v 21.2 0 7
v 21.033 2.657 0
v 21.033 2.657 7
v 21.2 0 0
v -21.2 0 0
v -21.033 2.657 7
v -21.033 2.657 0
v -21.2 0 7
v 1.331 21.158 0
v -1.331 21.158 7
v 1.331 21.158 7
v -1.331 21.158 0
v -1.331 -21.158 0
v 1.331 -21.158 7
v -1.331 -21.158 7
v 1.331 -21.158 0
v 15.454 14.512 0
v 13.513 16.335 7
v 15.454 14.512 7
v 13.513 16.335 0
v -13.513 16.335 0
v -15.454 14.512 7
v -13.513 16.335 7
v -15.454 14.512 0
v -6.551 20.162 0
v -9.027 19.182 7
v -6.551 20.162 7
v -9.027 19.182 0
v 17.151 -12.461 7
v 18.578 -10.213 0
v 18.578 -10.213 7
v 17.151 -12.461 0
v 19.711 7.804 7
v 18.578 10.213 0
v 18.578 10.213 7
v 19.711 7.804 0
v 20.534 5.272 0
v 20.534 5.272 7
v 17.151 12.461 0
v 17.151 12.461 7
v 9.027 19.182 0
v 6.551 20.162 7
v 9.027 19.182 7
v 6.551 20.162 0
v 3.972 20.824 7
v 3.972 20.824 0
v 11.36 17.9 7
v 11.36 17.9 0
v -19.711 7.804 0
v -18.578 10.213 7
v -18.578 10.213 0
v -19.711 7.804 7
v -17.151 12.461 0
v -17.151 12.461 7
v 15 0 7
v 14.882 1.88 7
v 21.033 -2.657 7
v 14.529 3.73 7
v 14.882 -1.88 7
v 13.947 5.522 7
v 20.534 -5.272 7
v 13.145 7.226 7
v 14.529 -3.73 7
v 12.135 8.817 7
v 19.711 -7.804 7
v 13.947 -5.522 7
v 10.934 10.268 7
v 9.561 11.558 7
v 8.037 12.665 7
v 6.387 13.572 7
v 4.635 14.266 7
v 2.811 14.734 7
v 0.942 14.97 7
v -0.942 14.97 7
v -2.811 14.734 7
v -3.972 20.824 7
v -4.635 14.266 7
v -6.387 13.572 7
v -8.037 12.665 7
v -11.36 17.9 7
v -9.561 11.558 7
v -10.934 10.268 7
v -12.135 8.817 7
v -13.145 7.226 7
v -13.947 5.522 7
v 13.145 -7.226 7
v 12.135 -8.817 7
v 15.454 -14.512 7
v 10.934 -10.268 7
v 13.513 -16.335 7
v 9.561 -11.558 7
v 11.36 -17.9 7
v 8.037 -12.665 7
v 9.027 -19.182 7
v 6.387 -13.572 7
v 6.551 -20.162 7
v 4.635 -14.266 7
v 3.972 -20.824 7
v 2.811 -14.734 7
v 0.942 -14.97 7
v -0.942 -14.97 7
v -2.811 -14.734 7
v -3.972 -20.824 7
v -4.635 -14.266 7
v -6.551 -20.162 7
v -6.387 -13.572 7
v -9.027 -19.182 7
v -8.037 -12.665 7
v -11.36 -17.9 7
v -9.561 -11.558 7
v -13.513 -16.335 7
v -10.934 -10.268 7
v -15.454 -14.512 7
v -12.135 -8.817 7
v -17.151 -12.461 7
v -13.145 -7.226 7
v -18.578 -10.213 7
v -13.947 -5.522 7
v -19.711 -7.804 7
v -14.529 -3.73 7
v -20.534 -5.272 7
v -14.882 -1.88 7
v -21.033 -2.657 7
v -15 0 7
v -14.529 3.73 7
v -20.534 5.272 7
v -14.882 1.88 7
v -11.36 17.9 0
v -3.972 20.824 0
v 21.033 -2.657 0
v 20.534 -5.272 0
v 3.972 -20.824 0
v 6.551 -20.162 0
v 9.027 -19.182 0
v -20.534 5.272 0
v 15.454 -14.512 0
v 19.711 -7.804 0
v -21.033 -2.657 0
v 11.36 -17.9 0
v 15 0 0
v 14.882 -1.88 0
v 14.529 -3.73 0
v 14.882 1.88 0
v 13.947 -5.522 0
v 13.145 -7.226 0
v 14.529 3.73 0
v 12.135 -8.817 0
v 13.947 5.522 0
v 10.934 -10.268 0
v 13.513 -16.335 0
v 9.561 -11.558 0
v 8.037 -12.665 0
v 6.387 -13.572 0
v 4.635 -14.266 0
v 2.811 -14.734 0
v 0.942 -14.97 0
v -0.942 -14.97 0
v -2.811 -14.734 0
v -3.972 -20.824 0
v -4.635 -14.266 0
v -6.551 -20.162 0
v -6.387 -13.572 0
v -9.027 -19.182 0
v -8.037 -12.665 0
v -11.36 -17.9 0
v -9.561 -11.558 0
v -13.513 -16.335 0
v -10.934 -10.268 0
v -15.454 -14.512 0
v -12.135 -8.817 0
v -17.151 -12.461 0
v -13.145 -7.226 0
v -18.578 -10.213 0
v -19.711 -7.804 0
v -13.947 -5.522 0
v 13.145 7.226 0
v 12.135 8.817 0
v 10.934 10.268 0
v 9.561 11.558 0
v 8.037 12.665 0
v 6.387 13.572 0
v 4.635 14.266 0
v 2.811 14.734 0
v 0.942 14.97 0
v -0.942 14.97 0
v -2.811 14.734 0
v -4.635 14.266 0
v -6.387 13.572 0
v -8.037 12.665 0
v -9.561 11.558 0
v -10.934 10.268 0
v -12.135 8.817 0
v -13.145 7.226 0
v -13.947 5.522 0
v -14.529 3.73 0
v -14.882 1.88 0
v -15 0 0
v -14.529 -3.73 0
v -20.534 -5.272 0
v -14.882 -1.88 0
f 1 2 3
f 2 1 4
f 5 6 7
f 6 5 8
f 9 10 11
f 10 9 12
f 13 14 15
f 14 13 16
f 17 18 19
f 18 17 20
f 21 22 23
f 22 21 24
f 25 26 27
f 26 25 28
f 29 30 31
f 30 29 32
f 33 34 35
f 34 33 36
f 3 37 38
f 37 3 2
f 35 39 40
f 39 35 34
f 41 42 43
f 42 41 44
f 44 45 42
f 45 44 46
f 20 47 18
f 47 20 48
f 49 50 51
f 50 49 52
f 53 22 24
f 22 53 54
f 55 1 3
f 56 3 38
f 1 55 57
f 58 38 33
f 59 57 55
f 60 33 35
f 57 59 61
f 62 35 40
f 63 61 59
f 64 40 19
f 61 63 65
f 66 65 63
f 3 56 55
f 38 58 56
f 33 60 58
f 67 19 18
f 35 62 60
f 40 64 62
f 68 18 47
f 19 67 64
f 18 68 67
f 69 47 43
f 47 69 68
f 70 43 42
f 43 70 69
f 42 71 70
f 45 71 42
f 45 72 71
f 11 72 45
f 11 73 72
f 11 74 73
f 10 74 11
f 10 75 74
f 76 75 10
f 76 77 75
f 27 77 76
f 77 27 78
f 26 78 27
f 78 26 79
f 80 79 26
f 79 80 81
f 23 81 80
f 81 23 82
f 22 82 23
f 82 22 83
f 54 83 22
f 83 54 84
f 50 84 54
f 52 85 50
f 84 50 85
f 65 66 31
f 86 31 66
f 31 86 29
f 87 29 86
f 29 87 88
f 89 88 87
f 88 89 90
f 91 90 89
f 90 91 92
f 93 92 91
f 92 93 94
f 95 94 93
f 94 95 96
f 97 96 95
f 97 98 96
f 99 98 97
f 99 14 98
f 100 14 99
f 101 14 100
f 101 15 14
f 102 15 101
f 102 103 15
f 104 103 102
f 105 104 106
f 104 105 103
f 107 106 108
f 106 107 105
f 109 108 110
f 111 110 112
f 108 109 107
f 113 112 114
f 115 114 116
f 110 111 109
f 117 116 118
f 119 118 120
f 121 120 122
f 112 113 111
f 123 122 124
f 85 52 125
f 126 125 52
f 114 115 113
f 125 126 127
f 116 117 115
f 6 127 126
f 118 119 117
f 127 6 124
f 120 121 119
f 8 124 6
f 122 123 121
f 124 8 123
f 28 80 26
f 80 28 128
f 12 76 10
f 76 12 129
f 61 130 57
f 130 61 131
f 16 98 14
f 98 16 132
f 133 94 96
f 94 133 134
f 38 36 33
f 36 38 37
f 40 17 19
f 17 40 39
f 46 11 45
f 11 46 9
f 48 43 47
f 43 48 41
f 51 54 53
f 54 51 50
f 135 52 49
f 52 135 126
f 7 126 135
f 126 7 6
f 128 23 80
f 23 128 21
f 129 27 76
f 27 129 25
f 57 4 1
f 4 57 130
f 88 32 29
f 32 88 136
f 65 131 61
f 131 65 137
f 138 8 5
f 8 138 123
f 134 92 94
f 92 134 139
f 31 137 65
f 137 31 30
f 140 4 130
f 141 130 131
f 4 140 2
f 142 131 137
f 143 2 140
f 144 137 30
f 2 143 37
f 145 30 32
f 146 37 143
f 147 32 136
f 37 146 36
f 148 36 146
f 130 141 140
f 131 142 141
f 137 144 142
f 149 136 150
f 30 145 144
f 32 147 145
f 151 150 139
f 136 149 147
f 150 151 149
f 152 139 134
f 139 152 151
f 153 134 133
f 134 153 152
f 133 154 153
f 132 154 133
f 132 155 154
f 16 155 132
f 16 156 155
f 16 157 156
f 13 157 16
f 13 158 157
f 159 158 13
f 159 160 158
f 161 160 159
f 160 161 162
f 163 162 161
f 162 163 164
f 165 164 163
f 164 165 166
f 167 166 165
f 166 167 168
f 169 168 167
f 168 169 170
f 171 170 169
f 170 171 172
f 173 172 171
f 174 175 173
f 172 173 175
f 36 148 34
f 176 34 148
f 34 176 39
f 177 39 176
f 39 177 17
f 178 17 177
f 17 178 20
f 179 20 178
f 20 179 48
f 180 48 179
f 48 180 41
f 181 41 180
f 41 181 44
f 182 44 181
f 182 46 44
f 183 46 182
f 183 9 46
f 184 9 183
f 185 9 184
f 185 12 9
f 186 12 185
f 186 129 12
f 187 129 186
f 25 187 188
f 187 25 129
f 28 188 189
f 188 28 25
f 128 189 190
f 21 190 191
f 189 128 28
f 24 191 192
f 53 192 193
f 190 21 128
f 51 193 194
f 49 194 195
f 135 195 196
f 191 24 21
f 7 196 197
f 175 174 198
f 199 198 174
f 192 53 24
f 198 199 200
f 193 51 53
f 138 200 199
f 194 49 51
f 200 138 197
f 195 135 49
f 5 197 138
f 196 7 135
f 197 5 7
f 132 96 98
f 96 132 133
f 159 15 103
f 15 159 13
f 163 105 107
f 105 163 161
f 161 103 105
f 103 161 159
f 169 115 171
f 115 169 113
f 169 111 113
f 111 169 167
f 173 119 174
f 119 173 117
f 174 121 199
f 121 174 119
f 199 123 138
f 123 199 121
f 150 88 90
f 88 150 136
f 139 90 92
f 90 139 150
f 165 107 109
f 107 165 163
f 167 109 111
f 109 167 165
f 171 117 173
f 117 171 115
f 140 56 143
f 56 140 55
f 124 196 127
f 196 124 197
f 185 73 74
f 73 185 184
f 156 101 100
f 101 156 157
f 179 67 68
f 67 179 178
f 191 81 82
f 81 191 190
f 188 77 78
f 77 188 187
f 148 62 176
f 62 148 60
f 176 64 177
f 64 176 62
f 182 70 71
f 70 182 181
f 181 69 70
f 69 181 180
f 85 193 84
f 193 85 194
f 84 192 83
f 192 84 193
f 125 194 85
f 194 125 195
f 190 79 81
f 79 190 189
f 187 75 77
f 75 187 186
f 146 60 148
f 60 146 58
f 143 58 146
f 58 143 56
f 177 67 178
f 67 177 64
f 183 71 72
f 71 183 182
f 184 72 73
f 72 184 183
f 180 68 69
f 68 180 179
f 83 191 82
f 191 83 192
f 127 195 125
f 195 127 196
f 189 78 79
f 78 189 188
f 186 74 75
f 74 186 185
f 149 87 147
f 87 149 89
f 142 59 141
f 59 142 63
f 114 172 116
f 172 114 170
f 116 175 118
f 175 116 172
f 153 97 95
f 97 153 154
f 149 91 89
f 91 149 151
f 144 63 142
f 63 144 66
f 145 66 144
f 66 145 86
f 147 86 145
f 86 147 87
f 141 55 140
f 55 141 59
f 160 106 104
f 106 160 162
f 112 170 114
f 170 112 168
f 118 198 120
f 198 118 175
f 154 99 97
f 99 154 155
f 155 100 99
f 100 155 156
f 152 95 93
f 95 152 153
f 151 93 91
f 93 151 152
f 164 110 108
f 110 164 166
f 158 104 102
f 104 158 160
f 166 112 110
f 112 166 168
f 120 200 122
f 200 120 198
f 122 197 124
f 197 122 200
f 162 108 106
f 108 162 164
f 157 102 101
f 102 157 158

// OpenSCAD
$fn = 50;


difference() {
	union() {
		translate(v = [0, 0, 0]) {
			rotate(a = [0, 0, 0]) {
				cylinder(h = 7, r = 21.2000000000);
			}
		}
	}
	union() {
		translate(v = [0, 0, 0]) {
			rotate(a = [0, 0, 0]) {
				cylinder(h = 7, r = 15.0000000000);
			}
		}
	}
}
